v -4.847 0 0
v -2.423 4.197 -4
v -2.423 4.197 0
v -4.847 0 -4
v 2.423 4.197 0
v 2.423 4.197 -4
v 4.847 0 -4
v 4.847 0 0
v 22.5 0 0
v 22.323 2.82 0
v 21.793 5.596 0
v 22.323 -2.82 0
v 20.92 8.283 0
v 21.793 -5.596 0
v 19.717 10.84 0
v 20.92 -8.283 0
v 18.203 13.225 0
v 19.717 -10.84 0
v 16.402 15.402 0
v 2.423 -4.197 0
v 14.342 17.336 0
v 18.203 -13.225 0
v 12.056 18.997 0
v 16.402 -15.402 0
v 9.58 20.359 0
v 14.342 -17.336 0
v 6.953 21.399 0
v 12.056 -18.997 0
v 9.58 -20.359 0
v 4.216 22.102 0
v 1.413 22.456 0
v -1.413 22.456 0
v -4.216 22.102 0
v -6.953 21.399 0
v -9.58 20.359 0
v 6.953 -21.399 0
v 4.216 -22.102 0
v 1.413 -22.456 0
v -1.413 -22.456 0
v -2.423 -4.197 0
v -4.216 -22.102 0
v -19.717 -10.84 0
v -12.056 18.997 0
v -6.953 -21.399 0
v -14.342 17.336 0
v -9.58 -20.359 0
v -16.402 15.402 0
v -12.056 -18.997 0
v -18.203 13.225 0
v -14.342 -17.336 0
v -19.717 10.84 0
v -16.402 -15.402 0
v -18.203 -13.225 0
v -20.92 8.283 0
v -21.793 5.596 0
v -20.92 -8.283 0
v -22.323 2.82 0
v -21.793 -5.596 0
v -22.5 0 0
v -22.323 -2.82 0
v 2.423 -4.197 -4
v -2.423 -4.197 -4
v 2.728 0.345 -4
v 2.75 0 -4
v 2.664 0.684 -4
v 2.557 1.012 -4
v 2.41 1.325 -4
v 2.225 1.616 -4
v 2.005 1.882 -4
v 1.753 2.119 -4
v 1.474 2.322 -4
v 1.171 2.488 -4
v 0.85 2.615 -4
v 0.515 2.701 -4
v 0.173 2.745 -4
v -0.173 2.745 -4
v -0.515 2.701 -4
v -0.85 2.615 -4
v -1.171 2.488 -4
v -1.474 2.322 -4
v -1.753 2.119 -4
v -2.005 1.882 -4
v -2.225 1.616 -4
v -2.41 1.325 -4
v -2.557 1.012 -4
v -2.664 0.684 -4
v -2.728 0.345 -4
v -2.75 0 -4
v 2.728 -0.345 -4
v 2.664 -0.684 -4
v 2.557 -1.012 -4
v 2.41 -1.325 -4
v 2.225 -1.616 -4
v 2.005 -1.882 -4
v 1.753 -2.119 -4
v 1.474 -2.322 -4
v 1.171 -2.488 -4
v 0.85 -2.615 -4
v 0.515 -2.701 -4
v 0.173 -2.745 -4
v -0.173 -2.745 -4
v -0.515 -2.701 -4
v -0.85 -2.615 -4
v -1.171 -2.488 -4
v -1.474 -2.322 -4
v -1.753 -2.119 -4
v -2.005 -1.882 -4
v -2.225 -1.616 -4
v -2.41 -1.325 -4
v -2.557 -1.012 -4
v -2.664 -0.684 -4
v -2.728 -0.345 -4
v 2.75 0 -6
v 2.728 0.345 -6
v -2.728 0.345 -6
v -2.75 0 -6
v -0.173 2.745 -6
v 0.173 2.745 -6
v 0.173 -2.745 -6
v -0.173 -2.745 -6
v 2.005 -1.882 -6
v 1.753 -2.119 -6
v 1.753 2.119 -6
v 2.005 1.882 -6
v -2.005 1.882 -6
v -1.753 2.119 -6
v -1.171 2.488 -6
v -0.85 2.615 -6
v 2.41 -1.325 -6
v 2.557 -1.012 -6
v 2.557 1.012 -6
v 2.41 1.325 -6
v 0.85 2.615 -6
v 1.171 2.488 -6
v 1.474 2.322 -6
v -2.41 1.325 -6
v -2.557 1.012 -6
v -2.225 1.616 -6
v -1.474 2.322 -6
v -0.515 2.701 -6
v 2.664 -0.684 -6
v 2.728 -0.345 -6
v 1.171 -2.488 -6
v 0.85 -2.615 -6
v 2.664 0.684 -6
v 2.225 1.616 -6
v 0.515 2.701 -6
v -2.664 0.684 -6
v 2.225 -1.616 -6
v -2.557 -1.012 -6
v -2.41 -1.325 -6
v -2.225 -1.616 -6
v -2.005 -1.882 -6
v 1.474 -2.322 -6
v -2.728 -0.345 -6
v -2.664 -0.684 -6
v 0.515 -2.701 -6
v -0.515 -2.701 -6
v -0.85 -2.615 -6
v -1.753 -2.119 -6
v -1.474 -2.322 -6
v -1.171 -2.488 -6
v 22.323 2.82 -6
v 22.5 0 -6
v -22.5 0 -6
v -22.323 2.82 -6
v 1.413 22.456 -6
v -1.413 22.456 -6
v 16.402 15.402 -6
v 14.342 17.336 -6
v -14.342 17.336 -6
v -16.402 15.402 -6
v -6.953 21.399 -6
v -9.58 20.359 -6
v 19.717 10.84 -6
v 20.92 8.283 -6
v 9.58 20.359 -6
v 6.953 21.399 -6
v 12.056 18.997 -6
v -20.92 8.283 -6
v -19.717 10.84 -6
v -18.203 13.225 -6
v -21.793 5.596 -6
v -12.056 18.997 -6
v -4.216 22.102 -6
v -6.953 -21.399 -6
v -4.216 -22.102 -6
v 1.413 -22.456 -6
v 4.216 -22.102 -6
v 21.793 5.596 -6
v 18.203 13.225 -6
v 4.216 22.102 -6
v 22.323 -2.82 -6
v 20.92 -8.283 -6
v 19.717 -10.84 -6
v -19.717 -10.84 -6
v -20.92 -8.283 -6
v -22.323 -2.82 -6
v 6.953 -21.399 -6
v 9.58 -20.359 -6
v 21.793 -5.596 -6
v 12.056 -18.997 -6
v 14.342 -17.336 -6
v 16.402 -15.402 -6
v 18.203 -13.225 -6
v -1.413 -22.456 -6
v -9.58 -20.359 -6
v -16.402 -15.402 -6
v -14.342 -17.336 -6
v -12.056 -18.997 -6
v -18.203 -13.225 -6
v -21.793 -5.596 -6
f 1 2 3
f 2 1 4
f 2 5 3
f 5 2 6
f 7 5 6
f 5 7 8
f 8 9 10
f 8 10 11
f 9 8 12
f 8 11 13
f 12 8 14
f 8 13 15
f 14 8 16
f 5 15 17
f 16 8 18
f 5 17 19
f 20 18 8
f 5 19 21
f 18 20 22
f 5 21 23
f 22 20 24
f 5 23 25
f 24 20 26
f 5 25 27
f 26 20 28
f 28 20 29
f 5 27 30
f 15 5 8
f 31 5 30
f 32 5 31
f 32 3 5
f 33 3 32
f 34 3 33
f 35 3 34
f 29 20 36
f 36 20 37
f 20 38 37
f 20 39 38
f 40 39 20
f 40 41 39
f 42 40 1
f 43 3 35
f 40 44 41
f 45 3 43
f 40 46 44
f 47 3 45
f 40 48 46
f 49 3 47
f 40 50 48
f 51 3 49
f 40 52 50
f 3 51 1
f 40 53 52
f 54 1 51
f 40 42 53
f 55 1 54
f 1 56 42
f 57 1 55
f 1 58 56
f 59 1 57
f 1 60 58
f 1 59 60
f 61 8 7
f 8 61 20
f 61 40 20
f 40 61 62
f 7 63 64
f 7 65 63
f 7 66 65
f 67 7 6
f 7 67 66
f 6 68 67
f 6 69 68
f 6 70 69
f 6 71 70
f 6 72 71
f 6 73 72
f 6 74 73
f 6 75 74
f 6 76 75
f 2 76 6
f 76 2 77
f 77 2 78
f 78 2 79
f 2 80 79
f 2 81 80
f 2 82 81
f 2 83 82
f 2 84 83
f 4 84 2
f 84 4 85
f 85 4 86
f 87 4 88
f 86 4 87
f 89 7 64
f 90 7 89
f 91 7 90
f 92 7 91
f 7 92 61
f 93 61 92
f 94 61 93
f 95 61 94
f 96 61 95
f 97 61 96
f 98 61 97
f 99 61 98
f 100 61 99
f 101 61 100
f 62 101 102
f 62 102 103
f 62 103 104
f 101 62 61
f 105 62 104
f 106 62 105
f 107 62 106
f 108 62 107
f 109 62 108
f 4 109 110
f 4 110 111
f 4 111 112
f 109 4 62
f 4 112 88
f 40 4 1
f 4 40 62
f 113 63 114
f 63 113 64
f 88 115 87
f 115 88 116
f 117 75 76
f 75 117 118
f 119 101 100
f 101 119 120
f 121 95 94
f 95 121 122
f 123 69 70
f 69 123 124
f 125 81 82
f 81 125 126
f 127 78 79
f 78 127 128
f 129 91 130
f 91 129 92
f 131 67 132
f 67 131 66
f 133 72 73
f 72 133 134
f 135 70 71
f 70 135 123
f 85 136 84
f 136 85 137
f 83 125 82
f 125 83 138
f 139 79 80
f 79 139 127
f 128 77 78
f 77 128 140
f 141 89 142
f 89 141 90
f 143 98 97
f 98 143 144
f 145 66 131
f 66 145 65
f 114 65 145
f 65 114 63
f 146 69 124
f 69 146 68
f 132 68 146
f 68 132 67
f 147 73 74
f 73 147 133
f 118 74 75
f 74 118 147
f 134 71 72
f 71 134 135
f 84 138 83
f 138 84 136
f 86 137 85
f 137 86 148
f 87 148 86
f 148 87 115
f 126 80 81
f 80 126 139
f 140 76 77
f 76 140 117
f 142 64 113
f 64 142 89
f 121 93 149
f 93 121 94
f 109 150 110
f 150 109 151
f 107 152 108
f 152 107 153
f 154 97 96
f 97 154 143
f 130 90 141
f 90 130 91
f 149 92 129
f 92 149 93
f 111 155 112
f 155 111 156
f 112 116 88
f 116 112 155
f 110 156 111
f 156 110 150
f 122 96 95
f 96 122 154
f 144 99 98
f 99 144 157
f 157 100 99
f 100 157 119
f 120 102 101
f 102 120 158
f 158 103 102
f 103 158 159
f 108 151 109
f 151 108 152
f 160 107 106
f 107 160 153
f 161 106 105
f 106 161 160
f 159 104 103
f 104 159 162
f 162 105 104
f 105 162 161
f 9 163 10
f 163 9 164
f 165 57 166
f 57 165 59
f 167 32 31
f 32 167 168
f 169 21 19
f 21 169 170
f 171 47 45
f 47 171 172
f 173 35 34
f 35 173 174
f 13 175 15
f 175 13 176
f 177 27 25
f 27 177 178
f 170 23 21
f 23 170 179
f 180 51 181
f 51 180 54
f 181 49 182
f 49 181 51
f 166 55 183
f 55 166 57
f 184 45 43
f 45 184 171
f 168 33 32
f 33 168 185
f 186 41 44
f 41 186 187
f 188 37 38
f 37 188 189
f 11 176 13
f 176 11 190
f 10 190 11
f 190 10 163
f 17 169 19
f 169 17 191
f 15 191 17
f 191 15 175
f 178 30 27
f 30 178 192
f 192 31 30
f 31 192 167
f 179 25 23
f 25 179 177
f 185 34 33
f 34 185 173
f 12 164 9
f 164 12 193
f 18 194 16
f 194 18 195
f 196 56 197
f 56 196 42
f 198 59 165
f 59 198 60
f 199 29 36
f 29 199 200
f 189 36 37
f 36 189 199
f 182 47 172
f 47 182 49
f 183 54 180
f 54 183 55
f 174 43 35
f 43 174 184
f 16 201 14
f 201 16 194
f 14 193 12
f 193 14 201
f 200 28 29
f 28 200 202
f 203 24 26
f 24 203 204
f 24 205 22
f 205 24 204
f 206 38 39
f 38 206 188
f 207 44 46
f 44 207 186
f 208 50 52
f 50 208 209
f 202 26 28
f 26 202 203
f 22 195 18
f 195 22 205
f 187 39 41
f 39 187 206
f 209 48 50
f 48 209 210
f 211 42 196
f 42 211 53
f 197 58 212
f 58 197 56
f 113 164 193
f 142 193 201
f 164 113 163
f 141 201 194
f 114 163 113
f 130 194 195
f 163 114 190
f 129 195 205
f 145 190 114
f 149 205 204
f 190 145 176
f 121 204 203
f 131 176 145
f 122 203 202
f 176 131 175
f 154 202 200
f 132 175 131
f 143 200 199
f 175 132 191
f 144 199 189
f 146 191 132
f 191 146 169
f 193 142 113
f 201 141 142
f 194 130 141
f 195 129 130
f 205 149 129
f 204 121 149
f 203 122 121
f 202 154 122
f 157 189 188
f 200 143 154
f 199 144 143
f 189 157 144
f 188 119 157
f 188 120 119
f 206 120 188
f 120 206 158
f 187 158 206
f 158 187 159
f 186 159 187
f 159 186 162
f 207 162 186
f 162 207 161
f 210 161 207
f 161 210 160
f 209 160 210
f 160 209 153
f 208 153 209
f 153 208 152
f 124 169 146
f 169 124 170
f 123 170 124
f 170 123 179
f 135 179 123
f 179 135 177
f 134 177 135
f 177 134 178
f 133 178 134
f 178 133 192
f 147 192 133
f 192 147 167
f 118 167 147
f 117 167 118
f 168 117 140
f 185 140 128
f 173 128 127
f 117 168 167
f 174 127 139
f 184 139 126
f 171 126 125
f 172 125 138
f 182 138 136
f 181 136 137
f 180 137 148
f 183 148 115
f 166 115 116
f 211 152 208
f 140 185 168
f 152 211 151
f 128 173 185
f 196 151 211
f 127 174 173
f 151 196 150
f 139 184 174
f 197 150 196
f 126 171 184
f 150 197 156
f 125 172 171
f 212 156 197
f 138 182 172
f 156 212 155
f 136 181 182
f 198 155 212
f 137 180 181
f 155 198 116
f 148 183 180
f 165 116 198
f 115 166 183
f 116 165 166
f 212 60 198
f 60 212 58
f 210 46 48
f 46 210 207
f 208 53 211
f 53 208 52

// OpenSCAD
$fn = 50;


difference() {
	union() {
		translate(v = [0, 0, -6.0000000000]) {
			cylinder(h = 6.0000000000, r = 22.5000000000);
		}
	}
	union() {
		translate(v = [0, 0, 0]) {
			rotate(a = [0, 0, 0]) {
				difference() {
					union() {
						translate(v = [0, 0, -4]) {
							linear_extrude(height = 4) {
								polygon(points = [[4.8468000000, 0.0000000000], [2.4234000000, 4.1974519271], [-2.4234000000, 4.1974519271], [-4.8468000000, 0.0000000000], [-2.4234000000, -4.1974519271], [2.4234000000, -4.1974519271]]);
							}
						}
					}
					union();
				}
			}
		}
		#translate(v = [0, 0, -100.0000000000]) {
			cylinder(h = 200, r = 2.7500000000);
		}
	}
}
